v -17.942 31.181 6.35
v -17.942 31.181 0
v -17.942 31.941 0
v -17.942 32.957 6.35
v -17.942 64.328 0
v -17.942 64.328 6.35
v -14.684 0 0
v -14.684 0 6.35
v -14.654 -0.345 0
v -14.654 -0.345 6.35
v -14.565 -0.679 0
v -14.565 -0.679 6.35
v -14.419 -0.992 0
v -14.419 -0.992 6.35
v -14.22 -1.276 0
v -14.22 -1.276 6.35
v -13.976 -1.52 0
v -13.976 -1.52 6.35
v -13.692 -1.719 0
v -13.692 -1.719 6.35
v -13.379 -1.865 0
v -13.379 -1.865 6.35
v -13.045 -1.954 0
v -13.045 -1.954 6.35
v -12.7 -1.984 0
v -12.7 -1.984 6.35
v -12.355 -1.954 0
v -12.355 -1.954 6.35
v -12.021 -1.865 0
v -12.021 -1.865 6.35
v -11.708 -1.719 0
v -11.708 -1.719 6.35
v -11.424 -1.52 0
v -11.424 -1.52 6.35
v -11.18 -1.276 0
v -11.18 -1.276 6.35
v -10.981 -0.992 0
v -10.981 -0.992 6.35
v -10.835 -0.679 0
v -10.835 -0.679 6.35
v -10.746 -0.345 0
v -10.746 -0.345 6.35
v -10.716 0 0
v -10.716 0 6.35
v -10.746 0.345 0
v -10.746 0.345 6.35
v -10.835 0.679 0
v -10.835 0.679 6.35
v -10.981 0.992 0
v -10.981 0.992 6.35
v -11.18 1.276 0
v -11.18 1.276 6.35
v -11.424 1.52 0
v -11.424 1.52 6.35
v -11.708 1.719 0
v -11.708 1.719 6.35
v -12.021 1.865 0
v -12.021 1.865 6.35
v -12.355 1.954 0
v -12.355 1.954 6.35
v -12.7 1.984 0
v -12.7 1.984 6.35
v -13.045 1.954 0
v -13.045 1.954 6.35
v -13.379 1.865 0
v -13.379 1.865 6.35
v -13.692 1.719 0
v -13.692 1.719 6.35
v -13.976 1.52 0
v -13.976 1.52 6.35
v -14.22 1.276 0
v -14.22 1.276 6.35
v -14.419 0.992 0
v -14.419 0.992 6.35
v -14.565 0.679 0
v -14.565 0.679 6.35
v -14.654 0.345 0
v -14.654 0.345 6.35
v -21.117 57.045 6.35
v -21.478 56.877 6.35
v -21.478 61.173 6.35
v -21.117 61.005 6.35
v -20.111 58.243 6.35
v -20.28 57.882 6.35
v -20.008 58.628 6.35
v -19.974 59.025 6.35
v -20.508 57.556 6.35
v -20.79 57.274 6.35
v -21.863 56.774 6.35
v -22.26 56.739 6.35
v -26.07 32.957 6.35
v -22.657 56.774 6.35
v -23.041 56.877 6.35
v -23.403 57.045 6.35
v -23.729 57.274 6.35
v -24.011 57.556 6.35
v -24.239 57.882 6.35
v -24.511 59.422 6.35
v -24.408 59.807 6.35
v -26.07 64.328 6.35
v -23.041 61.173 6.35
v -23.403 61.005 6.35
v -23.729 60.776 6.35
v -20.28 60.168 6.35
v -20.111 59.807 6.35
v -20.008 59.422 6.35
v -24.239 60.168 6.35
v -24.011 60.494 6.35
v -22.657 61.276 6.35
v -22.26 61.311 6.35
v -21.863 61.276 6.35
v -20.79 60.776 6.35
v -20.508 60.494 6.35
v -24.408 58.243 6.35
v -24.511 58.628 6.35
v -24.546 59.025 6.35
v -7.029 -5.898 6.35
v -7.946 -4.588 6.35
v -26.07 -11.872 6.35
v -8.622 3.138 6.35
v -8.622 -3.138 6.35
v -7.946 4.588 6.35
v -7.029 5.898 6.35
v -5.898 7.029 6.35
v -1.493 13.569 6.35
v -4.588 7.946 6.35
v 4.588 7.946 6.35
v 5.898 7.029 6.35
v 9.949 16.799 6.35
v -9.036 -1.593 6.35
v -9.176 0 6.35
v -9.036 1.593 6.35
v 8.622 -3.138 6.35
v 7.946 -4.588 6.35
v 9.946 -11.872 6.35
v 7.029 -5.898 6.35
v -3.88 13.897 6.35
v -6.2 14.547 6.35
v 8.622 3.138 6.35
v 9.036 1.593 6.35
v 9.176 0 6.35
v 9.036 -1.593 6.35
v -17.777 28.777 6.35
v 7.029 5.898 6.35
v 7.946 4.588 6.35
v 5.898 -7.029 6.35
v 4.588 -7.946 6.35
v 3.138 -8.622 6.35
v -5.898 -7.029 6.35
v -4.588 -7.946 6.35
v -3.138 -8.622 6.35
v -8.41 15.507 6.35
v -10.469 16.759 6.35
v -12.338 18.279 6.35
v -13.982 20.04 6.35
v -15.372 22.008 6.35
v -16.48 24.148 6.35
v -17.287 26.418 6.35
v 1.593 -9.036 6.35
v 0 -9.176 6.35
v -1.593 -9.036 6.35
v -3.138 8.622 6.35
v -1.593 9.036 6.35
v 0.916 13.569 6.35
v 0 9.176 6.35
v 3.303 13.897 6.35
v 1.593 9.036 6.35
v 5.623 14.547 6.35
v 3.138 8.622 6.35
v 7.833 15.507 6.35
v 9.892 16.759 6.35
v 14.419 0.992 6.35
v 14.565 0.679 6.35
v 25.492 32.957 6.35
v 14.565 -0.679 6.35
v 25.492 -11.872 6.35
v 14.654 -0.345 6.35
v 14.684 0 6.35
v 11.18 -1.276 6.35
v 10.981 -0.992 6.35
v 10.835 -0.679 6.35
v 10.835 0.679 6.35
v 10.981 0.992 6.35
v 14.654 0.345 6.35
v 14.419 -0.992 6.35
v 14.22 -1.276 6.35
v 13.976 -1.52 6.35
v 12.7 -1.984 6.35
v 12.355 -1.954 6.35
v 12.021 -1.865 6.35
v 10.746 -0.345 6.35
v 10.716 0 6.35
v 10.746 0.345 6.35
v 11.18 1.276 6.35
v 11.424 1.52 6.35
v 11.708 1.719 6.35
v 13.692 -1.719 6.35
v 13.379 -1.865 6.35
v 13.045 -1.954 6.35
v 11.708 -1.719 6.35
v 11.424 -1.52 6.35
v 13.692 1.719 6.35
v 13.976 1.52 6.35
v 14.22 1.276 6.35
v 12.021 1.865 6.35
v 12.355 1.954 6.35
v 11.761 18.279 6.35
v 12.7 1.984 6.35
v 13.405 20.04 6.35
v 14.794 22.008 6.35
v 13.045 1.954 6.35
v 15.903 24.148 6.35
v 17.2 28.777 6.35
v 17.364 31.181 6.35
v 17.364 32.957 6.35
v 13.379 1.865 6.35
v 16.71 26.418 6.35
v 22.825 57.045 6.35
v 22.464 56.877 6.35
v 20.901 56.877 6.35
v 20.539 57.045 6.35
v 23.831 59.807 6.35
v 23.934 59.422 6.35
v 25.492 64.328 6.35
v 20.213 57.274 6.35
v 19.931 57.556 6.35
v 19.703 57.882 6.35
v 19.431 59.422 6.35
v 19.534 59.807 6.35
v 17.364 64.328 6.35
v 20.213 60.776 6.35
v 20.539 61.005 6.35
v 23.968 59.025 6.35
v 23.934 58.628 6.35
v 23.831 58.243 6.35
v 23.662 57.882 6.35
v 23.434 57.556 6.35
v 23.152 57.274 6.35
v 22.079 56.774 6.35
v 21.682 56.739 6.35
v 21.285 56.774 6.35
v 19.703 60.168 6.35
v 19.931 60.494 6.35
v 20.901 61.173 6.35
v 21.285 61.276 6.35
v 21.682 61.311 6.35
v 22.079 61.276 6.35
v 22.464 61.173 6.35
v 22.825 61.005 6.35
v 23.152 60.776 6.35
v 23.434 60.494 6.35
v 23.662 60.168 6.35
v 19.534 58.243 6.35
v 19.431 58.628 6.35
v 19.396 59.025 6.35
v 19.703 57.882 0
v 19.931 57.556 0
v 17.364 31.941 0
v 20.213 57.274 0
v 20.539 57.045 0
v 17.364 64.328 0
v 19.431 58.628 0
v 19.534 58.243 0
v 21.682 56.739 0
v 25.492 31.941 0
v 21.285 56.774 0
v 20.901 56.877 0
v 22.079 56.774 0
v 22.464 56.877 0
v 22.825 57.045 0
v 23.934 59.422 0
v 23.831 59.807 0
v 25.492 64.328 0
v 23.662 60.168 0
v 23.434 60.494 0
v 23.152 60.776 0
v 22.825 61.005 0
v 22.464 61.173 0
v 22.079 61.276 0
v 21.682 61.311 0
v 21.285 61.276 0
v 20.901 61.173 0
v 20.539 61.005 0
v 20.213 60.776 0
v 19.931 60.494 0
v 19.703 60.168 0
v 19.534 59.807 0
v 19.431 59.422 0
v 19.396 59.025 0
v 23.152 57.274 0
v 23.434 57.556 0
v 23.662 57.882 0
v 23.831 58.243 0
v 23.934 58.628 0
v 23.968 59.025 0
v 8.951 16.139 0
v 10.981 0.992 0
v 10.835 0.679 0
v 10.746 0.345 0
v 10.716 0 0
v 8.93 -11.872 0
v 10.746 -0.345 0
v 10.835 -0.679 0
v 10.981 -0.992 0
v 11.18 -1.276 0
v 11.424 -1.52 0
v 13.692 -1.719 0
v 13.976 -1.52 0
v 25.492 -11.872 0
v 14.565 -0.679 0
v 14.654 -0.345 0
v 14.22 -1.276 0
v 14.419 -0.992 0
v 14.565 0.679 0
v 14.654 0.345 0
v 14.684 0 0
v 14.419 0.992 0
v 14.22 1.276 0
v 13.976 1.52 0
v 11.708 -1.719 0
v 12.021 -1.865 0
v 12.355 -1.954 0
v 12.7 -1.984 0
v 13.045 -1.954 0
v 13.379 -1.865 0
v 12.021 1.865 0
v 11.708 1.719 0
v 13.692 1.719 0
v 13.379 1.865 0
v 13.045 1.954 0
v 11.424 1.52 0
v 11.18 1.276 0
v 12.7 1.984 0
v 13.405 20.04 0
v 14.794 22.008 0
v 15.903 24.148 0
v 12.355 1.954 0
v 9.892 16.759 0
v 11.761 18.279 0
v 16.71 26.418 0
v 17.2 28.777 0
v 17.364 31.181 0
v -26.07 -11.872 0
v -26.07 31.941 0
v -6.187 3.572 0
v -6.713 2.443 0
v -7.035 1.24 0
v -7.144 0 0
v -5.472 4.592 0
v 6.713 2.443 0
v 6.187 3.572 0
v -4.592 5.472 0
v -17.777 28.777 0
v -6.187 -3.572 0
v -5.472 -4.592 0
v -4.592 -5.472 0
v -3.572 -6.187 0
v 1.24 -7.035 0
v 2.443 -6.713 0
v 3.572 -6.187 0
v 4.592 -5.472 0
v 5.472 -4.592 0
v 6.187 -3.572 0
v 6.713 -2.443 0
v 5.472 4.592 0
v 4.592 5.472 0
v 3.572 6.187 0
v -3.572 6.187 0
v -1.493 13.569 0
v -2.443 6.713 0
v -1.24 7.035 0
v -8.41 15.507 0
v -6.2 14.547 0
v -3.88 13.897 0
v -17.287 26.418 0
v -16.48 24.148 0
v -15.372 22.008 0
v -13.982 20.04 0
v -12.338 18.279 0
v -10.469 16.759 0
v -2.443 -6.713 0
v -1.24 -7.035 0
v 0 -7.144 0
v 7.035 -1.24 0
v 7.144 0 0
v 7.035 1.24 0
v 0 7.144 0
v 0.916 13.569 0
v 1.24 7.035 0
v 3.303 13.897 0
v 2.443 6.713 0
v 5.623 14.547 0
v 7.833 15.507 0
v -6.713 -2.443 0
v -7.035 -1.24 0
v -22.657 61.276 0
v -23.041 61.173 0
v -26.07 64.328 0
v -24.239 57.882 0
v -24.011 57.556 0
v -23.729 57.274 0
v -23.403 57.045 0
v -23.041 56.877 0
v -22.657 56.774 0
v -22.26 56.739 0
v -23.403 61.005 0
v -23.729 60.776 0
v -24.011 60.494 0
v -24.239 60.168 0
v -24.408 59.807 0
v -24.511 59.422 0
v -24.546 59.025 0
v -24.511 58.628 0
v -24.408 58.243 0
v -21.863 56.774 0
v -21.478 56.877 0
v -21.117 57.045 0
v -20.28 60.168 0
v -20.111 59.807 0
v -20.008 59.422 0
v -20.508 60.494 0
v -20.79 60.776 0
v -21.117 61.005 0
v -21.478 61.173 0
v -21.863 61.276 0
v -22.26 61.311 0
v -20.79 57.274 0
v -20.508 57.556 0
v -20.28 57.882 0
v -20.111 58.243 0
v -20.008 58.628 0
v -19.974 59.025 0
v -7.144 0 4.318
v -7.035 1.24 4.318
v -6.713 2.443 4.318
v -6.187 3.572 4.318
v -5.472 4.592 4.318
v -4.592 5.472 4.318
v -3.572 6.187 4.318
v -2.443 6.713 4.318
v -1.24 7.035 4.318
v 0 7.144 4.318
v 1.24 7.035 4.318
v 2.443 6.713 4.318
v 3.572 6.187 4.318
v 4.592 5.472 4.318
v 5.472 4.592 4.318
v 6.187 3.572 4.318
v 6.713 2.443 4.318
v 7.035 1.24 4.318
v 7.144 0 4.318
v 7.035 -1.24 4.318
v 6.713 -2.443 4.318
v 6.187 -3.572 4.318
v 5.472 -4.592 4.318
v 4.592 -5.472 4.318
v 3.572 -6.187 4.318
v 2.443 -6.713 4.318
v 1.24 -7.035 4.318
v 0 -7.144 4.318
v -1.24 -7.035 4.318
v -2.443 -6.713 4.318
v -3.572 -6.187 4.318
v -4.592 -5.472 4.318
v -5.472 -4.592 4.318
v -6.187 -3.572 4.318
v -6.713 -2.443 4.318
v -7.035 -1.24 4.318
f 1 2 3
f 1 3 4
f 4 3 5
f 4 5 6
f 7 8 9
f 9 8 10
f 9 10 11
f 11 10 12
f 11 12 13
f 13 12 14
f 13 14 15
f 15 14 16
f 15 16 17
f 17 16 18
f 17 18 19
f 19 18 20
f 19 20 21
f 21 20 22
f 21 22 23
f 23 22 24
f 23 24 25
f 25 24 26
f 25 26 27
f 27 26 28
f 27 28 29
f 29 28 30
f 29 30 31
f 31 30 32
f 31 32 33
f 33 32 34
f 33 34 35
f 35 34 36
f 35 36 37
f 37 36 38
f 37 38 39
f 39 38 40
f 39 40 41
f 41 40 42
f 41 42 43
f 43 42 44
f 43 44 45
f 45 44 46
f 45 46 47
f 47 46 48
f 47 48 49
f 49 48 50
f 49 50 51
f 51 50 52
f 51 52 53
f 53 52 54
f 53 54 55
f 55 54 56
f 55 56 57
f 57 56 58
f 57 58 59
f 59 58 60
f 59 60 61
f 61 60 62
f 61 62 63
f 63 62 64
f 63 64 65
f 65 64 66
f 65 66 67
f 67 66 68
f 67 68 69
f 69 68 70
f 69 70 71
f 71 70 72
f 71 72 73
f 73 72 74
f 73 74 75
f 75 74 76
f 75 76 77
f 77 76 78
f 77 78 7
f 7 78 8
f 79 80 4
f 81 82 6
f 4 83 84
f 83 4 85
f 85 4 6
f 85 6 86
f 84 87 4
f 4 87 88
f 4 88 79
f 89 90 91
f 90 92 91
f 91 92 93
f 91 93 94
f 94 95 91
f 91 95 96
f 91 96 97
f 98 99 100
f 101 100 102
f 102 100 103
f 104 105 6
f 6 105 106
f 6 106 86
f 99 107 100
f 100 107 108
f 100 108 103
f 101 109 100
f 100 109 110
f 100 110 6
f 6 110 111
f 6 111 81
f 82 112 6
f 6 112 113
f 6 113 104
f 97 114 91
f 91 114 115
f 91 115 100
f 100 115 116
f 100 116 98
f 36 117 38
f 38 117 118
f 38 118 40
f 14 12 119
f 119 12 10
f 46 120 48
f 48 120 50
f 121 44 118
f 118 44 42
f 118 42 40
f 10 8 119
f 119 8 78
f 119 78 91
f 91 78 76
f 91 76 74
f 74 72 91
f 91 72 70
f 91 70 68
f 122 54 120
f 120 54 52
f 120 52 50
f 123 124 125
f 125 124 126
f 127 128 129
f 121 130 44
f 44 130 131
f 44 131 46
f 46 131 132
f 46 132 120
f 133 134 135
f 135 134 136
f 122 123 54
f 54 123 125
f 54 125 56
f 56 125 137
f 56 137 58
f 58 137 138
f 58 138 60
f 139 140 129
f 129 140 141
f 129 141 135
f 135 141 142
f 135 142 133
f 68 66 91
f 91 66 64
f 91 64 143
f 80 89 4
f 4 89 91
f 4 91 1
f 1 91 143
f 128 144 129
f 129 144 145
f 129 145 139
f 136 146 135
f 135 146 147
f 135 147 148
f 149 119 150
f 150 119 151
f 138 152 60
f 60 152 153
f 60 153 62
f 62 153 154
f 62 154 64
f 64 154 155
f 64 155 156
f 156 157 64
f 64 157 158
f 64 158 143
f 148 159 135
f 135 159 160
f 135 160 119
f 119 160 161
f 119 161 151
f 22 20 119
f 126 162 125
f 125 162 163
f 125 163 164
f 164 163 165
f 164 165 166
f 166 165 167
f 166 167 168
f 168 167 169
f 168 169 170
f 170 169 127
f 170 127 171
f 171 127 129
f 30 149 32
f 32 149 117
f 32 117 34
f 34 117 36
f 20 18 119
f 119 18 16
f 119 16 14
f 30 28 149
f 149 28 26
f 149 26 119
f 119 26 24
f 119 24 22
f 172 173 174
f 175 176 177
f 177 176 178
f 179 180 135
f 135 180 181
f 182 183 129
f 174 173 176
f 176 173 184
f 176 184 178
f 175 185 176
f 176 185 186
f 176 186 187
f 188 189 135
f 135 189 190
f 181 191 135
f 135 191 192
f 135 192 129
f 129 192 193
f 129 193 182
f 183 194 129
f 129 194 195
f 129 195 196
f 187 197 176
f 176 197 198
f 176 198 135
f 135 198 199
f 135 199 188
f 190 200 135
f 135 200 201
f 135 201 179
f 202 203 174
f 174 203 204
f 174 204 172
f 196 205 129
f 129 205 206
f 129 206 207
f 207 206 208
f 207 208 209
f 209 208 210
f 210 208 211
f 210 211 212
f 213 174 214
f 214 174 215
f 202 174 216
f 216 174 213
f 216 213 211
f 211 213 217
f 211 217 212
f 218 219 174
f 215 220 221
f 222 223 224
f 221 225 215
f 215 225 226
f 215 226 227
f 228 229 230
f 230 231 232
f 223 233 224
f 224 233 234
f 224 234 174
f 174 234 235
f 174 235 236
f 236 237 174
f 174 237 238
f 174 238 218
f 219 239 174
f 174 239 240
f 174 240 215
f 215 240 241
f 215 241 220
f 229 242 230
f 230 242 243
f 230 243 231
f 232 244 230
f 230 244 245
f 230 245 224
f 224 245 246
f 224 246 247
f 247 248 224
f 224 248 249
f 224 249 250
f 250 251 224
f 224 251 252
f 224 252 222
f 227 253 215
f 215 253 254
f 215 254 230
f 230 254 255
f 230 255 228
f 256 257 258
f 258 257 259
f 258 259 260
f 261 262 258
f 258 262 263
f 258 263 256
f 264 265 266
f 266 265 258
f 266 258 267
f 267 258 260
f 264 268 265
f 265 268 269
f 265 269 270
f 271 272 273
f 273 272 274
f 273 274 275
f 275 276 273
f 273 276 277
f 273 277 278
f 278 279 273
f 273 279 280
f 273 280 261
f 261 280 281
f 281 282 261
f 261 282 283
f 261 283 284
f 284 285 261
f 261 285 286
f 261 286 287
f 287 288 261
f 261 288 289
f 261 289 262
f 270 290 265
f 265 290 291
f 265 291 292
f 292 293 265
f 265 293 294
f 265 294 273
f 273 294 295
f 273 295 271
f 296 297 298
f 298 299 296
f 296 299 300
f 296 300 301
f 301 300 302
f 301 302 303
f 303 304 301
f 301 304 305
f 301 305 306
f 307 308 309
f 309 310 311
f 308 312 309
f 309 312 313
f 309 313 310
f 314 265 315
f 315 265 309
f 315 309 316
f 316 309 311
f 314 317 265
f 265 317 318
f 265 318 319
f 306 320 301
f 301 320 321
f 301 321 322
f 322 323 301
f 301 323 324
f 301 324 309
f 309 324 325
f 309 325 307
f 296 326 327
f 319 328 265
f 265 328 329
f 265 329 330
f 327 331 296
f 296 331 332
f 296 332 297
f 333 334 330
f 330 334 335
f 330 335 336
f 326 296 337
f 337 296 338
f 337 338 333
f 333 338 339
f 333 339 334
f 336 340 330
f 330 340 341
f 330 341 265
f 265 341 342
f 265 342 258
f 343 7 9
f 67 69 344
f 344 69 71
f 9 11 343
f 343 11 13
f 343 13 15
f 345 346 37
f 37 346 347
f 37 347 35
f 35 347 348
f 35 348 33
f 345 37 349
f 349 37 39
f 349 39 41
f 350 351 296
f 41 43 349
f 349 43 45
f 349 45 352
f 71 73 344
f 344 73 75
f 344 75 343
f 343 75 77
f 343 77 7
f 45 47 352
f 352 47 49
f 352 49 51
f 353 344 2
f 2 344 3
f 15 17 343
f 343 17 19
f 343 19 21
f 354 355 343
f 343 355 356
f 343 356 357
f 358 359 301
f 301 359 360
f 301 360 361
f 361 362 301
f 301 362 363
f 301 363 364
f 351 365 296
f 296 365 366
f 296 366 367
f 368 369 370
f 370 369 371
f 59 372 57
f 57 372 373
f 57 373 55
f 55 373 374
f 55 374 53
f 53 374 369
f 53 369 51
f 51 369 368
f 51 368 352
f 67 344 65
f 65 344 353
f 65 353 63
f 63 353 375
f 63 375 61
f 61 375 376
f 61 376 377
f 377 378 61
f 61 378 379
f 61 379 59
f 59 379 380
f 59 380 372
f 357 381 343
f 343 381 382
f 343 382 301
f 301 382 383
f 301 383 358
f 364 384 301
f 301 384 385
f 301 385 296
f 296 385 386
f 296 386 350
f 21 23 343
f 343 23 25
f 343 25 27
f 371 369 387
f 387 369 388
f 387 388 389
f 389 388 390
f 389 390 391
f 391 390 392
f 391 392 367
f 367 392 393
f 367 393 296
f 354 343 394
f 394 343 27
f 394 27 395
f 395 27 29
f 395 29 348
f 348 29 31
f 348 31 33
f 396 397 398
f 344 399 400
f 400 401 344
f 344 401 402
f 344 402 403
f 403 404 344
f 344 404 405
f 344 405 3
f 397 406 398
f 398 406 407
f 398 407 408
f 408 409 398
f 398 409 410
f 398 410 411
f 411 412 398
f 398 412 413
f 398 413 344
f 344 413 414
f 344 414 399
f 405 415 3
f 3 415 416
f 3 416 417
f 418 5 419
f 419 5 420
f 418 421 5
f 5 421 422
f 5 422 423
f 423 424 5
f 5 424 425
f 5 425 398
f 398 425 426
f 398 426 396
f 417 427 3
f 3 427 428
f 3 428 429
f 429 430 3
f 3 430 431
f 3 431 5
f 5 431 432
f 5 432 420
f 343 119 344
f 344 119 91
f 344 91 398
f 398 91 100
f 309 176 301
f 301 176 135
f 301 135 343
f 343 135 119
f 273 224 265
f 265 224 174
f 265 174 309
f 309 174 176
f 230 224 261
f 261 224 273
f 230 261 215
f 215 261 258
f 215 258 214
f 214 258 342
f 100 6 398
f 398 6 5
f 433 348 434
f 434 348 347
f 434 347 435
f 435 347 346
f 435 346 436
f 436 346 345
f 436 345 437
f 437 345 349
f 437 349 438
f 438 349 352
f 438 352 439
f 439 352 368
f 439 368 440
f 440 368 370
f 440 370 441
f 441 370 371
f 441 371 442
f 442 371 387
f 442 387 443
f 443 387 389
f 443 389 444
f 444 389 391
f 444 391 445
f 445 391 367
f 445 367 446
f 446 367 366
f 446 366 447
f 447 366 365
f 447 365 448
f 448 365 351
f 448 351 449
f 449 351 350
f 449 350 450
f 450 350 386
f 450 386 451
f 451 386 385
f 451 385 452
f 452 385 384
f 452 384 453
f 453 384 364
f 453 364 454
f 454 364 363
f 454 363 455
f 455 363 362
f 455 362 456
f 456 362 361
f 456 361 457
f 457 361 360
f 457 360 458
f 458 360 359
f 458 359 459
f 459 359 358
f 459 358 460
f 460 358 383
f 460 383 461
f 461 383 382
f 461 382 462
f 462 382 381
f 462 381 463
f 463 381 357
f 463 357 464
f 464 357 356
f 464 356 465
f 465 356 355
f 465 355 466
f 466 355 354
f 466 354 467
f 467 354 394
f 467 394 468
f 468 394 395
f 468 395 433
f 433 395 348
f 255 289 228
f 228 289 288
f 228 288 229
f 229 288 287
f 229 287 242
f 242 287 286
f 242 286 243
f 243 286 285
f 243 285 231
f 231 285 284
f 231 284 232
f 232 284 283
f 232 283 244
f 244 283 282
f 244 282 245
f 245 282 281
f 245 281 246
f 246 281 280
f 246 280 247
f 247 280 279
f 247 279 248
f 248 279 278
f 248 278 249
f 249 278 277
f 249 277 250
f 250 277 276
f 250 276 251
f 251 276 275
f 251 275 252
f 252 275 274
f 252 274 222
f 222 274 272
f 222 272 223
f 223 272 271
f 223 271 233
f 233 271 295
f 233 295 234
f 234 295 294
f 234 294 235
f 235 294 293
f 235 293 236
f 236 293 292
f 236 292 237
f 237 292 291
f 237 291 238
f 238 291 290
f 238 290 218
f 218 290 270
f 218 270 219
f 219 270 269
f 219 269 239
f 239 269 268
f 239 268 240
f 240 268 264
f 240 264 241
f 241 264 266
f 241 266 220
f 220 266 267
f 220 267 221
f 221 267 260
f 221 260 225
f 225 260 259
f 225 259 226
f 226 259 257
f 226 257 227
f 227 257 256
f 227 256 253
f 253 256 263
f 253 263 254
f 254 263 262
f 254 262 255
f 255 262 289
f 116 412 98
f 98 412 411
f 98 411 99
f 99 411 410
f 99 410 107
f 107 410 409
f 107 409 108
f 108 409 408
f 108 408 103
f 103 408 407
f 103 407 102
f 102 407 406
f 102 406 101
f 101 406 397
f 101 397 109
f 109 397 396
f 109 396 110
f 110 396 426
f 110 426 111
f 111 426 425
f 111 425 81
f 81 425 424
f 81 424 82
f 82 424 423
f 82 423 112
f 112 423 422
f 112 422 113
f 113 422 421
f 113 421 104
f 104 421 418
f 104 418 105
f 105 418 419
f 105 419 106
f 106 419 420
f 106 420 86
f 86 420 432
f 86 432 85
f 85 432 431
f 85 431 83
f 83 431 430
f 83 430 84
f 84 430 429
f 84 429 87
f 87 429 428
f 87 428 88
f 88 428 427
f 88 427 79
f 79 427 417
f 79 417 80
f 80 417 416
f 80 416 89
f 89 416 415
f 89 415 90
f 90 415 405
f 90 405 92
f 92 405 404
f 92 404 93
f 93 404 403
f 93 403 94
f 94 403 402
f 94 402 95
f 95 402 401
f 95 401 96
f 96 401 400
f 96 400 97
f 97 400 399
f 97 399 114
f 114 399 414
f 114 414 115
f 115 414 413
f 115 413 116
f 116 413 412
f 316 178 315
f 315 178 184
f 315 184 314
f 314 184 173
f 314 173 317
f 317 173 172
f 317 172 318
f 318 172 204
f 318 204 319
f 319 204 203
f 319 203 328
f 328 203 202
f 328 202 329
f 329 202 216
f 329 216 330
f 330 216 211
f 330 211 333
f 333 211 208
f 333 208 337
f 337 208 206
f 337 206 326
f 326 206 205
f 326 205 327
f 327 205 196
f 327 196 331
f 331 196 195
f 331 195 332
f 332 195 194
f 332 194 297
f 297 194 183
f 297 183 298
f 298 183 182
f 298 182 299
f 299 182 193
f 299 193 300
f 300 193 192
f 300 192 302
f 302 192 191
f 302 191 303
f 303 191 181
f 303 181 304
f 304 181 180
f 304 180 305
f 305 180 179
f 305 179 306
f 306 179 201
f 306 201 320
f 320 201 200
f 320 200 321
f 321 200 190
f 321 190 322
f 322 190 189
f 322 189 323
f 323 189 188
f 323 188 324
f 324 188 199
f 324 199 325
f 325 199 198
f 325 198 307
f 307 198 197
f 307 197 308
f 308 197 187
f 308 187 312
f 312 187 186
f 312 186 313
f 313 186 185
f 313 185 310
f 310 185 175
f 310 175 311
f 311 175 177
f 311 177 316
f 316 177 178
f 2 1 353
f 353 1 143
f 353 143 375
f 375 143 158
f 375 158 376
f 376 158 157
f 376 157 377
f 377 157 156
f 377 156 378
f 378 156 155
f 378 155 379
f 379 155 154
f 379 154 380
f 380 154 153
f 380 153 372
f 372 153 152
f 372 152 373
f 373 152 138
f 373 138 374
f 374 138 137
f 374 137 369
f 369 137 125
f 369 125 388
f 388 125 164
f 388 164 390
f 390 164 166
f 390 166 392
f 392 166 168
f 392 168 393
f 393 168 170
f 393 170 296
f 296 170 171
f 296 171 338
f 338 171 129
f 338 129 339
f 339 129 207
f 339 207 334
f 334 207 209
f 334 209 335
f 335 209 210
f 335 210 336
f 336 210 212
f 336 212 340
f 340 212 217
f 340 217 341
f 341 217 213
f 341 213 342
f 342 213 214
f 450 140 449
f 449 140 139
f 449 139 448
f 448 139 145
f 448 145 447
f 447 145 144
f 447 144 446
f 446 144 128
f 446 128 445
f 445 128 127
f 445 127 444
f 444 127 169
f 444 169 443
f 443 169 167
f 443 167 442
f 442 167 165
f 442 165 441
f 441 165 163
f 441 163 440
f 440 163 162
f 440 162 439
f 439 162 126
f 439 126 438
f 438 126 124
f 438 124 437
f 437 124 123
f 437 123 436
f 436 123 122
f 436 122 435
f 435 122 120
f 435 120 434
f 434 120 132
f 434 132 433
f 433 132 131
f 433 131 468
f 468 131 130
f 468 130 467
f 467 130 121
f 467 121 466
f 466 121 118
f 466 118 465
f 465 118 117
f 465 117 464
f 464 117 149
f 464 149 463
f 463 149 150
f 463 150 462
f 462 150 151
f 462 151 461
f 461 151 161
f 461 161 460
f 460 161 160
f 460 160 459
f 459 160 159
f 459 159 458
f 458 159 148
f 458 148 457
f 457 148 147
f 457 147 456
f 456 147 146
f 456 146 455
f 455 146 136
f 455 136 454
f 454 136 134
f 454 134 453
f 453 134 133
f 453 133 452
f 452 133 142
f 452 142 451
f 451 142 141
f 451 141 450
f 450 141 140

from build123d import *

# Parameters (mm, degrees)
ESQUISSE1_R             = 7.14375
ESQUISSE1_R_2           = 2.286
BOSS_EXTRU_1_DEPTH      = 6.35
ESQUISSE3_R             = 1.984375
ENL_V_MAT_EXTRU_1_DEPTH = 70.699220992
BOSS_EXTRUDE1_DEPTH     = 6.35
CHAMFER1_SIZE           = 2.032


with BuildPart() as part:
    # Esquisse1 → Boss.-Extru.1 (new body)
    with BuildSketch(Plane.XY):
        Polygon((-26.06959879, 64.327559614), (-17.94159879, 64.327559614), (-17.94159879, 13.527559614), (17.36440121, 13.527559614), (17.36440121, 64.327559614), (25.49240121, 64.327559614), (25.49240121, -11.872440386), (-26.06959879, -11.872440386), align=None)
        Circle(ESQUISSE1_R, mode=Mode.SUBTRACT)
        with Locations((21.68240121, 59.024929956)):
            Circle(ESQUISSE1_R_2, mode=Mode.SUBTRACT)
        with Locations((-22.25959879, 59.024929956)):
            Circle(ESQUISSE1_R_2, mode=Mode.SUBTRACT)
    extrude(amount=BOSS_EXTRU_1_DEPTH)

    # Esquisse3 → Enlèv. mat.-Extru.1 (cut, through all)
    with BuildSketch(Plane.XY.offset(6.35)):
        with Locations((12.7, 0)):
            Circle(ESQUISSE3_R)
    enl_v_mat_extru_1 = extrude(amount=-ENL_V_MAT_EXTRU_1_DEPTH, mode=Mode.SUBTRACT)

    # Symétrie1: Enlèv. mat.-Extru.1 across plane
    add(enl_v_mat_extru_1.mirror(Plane(origin=(0, 0, 0), x_dir=(0, 0, 1), z_dir=(1, 0, 0))), mode=Mode.SUBTRACT)

    # Sketch1 → Boss-Extrude1 (add)
    with BuildSketch(Plane.XY.offset(6.35)):
        with BuildLine():
            ThreePointArc((-0.28859879, 13.527559614), (-12.771154798, 18.698003606), (-17.94159879, 31.180559614))
            Line((-17.94159879, 31.180559614), (-17.94159879, 13.527559614))
            Line((-17.94159879, 13.527559614), (-0.28859879, 13.527559614))
        make_face()
        with BuildLine():
            ThreePointArc((17.36440121, 31.180559614), (12.193957219, 18.698003606), (-0.28859879, 13.527559614))
            Line((-0.28859879, 13.527559614), (17.36440121, 13.527559614))
            Line((17.36440121, 13.527559614), (17.36440121, 31.180559614))
        make_face()
    extrude(amount=-BOSS_EXTRUDE1_DEPTH)

    # Chamfer1
    chamfer1_edges = [part.edges().sort_by_distance(p)[0] for p in [
        (-7.14375, 0, 6.35),
    ]]
    chamfer(chamfer1_edges, length=CHAMFER1_SIZE)


solid = part.part
